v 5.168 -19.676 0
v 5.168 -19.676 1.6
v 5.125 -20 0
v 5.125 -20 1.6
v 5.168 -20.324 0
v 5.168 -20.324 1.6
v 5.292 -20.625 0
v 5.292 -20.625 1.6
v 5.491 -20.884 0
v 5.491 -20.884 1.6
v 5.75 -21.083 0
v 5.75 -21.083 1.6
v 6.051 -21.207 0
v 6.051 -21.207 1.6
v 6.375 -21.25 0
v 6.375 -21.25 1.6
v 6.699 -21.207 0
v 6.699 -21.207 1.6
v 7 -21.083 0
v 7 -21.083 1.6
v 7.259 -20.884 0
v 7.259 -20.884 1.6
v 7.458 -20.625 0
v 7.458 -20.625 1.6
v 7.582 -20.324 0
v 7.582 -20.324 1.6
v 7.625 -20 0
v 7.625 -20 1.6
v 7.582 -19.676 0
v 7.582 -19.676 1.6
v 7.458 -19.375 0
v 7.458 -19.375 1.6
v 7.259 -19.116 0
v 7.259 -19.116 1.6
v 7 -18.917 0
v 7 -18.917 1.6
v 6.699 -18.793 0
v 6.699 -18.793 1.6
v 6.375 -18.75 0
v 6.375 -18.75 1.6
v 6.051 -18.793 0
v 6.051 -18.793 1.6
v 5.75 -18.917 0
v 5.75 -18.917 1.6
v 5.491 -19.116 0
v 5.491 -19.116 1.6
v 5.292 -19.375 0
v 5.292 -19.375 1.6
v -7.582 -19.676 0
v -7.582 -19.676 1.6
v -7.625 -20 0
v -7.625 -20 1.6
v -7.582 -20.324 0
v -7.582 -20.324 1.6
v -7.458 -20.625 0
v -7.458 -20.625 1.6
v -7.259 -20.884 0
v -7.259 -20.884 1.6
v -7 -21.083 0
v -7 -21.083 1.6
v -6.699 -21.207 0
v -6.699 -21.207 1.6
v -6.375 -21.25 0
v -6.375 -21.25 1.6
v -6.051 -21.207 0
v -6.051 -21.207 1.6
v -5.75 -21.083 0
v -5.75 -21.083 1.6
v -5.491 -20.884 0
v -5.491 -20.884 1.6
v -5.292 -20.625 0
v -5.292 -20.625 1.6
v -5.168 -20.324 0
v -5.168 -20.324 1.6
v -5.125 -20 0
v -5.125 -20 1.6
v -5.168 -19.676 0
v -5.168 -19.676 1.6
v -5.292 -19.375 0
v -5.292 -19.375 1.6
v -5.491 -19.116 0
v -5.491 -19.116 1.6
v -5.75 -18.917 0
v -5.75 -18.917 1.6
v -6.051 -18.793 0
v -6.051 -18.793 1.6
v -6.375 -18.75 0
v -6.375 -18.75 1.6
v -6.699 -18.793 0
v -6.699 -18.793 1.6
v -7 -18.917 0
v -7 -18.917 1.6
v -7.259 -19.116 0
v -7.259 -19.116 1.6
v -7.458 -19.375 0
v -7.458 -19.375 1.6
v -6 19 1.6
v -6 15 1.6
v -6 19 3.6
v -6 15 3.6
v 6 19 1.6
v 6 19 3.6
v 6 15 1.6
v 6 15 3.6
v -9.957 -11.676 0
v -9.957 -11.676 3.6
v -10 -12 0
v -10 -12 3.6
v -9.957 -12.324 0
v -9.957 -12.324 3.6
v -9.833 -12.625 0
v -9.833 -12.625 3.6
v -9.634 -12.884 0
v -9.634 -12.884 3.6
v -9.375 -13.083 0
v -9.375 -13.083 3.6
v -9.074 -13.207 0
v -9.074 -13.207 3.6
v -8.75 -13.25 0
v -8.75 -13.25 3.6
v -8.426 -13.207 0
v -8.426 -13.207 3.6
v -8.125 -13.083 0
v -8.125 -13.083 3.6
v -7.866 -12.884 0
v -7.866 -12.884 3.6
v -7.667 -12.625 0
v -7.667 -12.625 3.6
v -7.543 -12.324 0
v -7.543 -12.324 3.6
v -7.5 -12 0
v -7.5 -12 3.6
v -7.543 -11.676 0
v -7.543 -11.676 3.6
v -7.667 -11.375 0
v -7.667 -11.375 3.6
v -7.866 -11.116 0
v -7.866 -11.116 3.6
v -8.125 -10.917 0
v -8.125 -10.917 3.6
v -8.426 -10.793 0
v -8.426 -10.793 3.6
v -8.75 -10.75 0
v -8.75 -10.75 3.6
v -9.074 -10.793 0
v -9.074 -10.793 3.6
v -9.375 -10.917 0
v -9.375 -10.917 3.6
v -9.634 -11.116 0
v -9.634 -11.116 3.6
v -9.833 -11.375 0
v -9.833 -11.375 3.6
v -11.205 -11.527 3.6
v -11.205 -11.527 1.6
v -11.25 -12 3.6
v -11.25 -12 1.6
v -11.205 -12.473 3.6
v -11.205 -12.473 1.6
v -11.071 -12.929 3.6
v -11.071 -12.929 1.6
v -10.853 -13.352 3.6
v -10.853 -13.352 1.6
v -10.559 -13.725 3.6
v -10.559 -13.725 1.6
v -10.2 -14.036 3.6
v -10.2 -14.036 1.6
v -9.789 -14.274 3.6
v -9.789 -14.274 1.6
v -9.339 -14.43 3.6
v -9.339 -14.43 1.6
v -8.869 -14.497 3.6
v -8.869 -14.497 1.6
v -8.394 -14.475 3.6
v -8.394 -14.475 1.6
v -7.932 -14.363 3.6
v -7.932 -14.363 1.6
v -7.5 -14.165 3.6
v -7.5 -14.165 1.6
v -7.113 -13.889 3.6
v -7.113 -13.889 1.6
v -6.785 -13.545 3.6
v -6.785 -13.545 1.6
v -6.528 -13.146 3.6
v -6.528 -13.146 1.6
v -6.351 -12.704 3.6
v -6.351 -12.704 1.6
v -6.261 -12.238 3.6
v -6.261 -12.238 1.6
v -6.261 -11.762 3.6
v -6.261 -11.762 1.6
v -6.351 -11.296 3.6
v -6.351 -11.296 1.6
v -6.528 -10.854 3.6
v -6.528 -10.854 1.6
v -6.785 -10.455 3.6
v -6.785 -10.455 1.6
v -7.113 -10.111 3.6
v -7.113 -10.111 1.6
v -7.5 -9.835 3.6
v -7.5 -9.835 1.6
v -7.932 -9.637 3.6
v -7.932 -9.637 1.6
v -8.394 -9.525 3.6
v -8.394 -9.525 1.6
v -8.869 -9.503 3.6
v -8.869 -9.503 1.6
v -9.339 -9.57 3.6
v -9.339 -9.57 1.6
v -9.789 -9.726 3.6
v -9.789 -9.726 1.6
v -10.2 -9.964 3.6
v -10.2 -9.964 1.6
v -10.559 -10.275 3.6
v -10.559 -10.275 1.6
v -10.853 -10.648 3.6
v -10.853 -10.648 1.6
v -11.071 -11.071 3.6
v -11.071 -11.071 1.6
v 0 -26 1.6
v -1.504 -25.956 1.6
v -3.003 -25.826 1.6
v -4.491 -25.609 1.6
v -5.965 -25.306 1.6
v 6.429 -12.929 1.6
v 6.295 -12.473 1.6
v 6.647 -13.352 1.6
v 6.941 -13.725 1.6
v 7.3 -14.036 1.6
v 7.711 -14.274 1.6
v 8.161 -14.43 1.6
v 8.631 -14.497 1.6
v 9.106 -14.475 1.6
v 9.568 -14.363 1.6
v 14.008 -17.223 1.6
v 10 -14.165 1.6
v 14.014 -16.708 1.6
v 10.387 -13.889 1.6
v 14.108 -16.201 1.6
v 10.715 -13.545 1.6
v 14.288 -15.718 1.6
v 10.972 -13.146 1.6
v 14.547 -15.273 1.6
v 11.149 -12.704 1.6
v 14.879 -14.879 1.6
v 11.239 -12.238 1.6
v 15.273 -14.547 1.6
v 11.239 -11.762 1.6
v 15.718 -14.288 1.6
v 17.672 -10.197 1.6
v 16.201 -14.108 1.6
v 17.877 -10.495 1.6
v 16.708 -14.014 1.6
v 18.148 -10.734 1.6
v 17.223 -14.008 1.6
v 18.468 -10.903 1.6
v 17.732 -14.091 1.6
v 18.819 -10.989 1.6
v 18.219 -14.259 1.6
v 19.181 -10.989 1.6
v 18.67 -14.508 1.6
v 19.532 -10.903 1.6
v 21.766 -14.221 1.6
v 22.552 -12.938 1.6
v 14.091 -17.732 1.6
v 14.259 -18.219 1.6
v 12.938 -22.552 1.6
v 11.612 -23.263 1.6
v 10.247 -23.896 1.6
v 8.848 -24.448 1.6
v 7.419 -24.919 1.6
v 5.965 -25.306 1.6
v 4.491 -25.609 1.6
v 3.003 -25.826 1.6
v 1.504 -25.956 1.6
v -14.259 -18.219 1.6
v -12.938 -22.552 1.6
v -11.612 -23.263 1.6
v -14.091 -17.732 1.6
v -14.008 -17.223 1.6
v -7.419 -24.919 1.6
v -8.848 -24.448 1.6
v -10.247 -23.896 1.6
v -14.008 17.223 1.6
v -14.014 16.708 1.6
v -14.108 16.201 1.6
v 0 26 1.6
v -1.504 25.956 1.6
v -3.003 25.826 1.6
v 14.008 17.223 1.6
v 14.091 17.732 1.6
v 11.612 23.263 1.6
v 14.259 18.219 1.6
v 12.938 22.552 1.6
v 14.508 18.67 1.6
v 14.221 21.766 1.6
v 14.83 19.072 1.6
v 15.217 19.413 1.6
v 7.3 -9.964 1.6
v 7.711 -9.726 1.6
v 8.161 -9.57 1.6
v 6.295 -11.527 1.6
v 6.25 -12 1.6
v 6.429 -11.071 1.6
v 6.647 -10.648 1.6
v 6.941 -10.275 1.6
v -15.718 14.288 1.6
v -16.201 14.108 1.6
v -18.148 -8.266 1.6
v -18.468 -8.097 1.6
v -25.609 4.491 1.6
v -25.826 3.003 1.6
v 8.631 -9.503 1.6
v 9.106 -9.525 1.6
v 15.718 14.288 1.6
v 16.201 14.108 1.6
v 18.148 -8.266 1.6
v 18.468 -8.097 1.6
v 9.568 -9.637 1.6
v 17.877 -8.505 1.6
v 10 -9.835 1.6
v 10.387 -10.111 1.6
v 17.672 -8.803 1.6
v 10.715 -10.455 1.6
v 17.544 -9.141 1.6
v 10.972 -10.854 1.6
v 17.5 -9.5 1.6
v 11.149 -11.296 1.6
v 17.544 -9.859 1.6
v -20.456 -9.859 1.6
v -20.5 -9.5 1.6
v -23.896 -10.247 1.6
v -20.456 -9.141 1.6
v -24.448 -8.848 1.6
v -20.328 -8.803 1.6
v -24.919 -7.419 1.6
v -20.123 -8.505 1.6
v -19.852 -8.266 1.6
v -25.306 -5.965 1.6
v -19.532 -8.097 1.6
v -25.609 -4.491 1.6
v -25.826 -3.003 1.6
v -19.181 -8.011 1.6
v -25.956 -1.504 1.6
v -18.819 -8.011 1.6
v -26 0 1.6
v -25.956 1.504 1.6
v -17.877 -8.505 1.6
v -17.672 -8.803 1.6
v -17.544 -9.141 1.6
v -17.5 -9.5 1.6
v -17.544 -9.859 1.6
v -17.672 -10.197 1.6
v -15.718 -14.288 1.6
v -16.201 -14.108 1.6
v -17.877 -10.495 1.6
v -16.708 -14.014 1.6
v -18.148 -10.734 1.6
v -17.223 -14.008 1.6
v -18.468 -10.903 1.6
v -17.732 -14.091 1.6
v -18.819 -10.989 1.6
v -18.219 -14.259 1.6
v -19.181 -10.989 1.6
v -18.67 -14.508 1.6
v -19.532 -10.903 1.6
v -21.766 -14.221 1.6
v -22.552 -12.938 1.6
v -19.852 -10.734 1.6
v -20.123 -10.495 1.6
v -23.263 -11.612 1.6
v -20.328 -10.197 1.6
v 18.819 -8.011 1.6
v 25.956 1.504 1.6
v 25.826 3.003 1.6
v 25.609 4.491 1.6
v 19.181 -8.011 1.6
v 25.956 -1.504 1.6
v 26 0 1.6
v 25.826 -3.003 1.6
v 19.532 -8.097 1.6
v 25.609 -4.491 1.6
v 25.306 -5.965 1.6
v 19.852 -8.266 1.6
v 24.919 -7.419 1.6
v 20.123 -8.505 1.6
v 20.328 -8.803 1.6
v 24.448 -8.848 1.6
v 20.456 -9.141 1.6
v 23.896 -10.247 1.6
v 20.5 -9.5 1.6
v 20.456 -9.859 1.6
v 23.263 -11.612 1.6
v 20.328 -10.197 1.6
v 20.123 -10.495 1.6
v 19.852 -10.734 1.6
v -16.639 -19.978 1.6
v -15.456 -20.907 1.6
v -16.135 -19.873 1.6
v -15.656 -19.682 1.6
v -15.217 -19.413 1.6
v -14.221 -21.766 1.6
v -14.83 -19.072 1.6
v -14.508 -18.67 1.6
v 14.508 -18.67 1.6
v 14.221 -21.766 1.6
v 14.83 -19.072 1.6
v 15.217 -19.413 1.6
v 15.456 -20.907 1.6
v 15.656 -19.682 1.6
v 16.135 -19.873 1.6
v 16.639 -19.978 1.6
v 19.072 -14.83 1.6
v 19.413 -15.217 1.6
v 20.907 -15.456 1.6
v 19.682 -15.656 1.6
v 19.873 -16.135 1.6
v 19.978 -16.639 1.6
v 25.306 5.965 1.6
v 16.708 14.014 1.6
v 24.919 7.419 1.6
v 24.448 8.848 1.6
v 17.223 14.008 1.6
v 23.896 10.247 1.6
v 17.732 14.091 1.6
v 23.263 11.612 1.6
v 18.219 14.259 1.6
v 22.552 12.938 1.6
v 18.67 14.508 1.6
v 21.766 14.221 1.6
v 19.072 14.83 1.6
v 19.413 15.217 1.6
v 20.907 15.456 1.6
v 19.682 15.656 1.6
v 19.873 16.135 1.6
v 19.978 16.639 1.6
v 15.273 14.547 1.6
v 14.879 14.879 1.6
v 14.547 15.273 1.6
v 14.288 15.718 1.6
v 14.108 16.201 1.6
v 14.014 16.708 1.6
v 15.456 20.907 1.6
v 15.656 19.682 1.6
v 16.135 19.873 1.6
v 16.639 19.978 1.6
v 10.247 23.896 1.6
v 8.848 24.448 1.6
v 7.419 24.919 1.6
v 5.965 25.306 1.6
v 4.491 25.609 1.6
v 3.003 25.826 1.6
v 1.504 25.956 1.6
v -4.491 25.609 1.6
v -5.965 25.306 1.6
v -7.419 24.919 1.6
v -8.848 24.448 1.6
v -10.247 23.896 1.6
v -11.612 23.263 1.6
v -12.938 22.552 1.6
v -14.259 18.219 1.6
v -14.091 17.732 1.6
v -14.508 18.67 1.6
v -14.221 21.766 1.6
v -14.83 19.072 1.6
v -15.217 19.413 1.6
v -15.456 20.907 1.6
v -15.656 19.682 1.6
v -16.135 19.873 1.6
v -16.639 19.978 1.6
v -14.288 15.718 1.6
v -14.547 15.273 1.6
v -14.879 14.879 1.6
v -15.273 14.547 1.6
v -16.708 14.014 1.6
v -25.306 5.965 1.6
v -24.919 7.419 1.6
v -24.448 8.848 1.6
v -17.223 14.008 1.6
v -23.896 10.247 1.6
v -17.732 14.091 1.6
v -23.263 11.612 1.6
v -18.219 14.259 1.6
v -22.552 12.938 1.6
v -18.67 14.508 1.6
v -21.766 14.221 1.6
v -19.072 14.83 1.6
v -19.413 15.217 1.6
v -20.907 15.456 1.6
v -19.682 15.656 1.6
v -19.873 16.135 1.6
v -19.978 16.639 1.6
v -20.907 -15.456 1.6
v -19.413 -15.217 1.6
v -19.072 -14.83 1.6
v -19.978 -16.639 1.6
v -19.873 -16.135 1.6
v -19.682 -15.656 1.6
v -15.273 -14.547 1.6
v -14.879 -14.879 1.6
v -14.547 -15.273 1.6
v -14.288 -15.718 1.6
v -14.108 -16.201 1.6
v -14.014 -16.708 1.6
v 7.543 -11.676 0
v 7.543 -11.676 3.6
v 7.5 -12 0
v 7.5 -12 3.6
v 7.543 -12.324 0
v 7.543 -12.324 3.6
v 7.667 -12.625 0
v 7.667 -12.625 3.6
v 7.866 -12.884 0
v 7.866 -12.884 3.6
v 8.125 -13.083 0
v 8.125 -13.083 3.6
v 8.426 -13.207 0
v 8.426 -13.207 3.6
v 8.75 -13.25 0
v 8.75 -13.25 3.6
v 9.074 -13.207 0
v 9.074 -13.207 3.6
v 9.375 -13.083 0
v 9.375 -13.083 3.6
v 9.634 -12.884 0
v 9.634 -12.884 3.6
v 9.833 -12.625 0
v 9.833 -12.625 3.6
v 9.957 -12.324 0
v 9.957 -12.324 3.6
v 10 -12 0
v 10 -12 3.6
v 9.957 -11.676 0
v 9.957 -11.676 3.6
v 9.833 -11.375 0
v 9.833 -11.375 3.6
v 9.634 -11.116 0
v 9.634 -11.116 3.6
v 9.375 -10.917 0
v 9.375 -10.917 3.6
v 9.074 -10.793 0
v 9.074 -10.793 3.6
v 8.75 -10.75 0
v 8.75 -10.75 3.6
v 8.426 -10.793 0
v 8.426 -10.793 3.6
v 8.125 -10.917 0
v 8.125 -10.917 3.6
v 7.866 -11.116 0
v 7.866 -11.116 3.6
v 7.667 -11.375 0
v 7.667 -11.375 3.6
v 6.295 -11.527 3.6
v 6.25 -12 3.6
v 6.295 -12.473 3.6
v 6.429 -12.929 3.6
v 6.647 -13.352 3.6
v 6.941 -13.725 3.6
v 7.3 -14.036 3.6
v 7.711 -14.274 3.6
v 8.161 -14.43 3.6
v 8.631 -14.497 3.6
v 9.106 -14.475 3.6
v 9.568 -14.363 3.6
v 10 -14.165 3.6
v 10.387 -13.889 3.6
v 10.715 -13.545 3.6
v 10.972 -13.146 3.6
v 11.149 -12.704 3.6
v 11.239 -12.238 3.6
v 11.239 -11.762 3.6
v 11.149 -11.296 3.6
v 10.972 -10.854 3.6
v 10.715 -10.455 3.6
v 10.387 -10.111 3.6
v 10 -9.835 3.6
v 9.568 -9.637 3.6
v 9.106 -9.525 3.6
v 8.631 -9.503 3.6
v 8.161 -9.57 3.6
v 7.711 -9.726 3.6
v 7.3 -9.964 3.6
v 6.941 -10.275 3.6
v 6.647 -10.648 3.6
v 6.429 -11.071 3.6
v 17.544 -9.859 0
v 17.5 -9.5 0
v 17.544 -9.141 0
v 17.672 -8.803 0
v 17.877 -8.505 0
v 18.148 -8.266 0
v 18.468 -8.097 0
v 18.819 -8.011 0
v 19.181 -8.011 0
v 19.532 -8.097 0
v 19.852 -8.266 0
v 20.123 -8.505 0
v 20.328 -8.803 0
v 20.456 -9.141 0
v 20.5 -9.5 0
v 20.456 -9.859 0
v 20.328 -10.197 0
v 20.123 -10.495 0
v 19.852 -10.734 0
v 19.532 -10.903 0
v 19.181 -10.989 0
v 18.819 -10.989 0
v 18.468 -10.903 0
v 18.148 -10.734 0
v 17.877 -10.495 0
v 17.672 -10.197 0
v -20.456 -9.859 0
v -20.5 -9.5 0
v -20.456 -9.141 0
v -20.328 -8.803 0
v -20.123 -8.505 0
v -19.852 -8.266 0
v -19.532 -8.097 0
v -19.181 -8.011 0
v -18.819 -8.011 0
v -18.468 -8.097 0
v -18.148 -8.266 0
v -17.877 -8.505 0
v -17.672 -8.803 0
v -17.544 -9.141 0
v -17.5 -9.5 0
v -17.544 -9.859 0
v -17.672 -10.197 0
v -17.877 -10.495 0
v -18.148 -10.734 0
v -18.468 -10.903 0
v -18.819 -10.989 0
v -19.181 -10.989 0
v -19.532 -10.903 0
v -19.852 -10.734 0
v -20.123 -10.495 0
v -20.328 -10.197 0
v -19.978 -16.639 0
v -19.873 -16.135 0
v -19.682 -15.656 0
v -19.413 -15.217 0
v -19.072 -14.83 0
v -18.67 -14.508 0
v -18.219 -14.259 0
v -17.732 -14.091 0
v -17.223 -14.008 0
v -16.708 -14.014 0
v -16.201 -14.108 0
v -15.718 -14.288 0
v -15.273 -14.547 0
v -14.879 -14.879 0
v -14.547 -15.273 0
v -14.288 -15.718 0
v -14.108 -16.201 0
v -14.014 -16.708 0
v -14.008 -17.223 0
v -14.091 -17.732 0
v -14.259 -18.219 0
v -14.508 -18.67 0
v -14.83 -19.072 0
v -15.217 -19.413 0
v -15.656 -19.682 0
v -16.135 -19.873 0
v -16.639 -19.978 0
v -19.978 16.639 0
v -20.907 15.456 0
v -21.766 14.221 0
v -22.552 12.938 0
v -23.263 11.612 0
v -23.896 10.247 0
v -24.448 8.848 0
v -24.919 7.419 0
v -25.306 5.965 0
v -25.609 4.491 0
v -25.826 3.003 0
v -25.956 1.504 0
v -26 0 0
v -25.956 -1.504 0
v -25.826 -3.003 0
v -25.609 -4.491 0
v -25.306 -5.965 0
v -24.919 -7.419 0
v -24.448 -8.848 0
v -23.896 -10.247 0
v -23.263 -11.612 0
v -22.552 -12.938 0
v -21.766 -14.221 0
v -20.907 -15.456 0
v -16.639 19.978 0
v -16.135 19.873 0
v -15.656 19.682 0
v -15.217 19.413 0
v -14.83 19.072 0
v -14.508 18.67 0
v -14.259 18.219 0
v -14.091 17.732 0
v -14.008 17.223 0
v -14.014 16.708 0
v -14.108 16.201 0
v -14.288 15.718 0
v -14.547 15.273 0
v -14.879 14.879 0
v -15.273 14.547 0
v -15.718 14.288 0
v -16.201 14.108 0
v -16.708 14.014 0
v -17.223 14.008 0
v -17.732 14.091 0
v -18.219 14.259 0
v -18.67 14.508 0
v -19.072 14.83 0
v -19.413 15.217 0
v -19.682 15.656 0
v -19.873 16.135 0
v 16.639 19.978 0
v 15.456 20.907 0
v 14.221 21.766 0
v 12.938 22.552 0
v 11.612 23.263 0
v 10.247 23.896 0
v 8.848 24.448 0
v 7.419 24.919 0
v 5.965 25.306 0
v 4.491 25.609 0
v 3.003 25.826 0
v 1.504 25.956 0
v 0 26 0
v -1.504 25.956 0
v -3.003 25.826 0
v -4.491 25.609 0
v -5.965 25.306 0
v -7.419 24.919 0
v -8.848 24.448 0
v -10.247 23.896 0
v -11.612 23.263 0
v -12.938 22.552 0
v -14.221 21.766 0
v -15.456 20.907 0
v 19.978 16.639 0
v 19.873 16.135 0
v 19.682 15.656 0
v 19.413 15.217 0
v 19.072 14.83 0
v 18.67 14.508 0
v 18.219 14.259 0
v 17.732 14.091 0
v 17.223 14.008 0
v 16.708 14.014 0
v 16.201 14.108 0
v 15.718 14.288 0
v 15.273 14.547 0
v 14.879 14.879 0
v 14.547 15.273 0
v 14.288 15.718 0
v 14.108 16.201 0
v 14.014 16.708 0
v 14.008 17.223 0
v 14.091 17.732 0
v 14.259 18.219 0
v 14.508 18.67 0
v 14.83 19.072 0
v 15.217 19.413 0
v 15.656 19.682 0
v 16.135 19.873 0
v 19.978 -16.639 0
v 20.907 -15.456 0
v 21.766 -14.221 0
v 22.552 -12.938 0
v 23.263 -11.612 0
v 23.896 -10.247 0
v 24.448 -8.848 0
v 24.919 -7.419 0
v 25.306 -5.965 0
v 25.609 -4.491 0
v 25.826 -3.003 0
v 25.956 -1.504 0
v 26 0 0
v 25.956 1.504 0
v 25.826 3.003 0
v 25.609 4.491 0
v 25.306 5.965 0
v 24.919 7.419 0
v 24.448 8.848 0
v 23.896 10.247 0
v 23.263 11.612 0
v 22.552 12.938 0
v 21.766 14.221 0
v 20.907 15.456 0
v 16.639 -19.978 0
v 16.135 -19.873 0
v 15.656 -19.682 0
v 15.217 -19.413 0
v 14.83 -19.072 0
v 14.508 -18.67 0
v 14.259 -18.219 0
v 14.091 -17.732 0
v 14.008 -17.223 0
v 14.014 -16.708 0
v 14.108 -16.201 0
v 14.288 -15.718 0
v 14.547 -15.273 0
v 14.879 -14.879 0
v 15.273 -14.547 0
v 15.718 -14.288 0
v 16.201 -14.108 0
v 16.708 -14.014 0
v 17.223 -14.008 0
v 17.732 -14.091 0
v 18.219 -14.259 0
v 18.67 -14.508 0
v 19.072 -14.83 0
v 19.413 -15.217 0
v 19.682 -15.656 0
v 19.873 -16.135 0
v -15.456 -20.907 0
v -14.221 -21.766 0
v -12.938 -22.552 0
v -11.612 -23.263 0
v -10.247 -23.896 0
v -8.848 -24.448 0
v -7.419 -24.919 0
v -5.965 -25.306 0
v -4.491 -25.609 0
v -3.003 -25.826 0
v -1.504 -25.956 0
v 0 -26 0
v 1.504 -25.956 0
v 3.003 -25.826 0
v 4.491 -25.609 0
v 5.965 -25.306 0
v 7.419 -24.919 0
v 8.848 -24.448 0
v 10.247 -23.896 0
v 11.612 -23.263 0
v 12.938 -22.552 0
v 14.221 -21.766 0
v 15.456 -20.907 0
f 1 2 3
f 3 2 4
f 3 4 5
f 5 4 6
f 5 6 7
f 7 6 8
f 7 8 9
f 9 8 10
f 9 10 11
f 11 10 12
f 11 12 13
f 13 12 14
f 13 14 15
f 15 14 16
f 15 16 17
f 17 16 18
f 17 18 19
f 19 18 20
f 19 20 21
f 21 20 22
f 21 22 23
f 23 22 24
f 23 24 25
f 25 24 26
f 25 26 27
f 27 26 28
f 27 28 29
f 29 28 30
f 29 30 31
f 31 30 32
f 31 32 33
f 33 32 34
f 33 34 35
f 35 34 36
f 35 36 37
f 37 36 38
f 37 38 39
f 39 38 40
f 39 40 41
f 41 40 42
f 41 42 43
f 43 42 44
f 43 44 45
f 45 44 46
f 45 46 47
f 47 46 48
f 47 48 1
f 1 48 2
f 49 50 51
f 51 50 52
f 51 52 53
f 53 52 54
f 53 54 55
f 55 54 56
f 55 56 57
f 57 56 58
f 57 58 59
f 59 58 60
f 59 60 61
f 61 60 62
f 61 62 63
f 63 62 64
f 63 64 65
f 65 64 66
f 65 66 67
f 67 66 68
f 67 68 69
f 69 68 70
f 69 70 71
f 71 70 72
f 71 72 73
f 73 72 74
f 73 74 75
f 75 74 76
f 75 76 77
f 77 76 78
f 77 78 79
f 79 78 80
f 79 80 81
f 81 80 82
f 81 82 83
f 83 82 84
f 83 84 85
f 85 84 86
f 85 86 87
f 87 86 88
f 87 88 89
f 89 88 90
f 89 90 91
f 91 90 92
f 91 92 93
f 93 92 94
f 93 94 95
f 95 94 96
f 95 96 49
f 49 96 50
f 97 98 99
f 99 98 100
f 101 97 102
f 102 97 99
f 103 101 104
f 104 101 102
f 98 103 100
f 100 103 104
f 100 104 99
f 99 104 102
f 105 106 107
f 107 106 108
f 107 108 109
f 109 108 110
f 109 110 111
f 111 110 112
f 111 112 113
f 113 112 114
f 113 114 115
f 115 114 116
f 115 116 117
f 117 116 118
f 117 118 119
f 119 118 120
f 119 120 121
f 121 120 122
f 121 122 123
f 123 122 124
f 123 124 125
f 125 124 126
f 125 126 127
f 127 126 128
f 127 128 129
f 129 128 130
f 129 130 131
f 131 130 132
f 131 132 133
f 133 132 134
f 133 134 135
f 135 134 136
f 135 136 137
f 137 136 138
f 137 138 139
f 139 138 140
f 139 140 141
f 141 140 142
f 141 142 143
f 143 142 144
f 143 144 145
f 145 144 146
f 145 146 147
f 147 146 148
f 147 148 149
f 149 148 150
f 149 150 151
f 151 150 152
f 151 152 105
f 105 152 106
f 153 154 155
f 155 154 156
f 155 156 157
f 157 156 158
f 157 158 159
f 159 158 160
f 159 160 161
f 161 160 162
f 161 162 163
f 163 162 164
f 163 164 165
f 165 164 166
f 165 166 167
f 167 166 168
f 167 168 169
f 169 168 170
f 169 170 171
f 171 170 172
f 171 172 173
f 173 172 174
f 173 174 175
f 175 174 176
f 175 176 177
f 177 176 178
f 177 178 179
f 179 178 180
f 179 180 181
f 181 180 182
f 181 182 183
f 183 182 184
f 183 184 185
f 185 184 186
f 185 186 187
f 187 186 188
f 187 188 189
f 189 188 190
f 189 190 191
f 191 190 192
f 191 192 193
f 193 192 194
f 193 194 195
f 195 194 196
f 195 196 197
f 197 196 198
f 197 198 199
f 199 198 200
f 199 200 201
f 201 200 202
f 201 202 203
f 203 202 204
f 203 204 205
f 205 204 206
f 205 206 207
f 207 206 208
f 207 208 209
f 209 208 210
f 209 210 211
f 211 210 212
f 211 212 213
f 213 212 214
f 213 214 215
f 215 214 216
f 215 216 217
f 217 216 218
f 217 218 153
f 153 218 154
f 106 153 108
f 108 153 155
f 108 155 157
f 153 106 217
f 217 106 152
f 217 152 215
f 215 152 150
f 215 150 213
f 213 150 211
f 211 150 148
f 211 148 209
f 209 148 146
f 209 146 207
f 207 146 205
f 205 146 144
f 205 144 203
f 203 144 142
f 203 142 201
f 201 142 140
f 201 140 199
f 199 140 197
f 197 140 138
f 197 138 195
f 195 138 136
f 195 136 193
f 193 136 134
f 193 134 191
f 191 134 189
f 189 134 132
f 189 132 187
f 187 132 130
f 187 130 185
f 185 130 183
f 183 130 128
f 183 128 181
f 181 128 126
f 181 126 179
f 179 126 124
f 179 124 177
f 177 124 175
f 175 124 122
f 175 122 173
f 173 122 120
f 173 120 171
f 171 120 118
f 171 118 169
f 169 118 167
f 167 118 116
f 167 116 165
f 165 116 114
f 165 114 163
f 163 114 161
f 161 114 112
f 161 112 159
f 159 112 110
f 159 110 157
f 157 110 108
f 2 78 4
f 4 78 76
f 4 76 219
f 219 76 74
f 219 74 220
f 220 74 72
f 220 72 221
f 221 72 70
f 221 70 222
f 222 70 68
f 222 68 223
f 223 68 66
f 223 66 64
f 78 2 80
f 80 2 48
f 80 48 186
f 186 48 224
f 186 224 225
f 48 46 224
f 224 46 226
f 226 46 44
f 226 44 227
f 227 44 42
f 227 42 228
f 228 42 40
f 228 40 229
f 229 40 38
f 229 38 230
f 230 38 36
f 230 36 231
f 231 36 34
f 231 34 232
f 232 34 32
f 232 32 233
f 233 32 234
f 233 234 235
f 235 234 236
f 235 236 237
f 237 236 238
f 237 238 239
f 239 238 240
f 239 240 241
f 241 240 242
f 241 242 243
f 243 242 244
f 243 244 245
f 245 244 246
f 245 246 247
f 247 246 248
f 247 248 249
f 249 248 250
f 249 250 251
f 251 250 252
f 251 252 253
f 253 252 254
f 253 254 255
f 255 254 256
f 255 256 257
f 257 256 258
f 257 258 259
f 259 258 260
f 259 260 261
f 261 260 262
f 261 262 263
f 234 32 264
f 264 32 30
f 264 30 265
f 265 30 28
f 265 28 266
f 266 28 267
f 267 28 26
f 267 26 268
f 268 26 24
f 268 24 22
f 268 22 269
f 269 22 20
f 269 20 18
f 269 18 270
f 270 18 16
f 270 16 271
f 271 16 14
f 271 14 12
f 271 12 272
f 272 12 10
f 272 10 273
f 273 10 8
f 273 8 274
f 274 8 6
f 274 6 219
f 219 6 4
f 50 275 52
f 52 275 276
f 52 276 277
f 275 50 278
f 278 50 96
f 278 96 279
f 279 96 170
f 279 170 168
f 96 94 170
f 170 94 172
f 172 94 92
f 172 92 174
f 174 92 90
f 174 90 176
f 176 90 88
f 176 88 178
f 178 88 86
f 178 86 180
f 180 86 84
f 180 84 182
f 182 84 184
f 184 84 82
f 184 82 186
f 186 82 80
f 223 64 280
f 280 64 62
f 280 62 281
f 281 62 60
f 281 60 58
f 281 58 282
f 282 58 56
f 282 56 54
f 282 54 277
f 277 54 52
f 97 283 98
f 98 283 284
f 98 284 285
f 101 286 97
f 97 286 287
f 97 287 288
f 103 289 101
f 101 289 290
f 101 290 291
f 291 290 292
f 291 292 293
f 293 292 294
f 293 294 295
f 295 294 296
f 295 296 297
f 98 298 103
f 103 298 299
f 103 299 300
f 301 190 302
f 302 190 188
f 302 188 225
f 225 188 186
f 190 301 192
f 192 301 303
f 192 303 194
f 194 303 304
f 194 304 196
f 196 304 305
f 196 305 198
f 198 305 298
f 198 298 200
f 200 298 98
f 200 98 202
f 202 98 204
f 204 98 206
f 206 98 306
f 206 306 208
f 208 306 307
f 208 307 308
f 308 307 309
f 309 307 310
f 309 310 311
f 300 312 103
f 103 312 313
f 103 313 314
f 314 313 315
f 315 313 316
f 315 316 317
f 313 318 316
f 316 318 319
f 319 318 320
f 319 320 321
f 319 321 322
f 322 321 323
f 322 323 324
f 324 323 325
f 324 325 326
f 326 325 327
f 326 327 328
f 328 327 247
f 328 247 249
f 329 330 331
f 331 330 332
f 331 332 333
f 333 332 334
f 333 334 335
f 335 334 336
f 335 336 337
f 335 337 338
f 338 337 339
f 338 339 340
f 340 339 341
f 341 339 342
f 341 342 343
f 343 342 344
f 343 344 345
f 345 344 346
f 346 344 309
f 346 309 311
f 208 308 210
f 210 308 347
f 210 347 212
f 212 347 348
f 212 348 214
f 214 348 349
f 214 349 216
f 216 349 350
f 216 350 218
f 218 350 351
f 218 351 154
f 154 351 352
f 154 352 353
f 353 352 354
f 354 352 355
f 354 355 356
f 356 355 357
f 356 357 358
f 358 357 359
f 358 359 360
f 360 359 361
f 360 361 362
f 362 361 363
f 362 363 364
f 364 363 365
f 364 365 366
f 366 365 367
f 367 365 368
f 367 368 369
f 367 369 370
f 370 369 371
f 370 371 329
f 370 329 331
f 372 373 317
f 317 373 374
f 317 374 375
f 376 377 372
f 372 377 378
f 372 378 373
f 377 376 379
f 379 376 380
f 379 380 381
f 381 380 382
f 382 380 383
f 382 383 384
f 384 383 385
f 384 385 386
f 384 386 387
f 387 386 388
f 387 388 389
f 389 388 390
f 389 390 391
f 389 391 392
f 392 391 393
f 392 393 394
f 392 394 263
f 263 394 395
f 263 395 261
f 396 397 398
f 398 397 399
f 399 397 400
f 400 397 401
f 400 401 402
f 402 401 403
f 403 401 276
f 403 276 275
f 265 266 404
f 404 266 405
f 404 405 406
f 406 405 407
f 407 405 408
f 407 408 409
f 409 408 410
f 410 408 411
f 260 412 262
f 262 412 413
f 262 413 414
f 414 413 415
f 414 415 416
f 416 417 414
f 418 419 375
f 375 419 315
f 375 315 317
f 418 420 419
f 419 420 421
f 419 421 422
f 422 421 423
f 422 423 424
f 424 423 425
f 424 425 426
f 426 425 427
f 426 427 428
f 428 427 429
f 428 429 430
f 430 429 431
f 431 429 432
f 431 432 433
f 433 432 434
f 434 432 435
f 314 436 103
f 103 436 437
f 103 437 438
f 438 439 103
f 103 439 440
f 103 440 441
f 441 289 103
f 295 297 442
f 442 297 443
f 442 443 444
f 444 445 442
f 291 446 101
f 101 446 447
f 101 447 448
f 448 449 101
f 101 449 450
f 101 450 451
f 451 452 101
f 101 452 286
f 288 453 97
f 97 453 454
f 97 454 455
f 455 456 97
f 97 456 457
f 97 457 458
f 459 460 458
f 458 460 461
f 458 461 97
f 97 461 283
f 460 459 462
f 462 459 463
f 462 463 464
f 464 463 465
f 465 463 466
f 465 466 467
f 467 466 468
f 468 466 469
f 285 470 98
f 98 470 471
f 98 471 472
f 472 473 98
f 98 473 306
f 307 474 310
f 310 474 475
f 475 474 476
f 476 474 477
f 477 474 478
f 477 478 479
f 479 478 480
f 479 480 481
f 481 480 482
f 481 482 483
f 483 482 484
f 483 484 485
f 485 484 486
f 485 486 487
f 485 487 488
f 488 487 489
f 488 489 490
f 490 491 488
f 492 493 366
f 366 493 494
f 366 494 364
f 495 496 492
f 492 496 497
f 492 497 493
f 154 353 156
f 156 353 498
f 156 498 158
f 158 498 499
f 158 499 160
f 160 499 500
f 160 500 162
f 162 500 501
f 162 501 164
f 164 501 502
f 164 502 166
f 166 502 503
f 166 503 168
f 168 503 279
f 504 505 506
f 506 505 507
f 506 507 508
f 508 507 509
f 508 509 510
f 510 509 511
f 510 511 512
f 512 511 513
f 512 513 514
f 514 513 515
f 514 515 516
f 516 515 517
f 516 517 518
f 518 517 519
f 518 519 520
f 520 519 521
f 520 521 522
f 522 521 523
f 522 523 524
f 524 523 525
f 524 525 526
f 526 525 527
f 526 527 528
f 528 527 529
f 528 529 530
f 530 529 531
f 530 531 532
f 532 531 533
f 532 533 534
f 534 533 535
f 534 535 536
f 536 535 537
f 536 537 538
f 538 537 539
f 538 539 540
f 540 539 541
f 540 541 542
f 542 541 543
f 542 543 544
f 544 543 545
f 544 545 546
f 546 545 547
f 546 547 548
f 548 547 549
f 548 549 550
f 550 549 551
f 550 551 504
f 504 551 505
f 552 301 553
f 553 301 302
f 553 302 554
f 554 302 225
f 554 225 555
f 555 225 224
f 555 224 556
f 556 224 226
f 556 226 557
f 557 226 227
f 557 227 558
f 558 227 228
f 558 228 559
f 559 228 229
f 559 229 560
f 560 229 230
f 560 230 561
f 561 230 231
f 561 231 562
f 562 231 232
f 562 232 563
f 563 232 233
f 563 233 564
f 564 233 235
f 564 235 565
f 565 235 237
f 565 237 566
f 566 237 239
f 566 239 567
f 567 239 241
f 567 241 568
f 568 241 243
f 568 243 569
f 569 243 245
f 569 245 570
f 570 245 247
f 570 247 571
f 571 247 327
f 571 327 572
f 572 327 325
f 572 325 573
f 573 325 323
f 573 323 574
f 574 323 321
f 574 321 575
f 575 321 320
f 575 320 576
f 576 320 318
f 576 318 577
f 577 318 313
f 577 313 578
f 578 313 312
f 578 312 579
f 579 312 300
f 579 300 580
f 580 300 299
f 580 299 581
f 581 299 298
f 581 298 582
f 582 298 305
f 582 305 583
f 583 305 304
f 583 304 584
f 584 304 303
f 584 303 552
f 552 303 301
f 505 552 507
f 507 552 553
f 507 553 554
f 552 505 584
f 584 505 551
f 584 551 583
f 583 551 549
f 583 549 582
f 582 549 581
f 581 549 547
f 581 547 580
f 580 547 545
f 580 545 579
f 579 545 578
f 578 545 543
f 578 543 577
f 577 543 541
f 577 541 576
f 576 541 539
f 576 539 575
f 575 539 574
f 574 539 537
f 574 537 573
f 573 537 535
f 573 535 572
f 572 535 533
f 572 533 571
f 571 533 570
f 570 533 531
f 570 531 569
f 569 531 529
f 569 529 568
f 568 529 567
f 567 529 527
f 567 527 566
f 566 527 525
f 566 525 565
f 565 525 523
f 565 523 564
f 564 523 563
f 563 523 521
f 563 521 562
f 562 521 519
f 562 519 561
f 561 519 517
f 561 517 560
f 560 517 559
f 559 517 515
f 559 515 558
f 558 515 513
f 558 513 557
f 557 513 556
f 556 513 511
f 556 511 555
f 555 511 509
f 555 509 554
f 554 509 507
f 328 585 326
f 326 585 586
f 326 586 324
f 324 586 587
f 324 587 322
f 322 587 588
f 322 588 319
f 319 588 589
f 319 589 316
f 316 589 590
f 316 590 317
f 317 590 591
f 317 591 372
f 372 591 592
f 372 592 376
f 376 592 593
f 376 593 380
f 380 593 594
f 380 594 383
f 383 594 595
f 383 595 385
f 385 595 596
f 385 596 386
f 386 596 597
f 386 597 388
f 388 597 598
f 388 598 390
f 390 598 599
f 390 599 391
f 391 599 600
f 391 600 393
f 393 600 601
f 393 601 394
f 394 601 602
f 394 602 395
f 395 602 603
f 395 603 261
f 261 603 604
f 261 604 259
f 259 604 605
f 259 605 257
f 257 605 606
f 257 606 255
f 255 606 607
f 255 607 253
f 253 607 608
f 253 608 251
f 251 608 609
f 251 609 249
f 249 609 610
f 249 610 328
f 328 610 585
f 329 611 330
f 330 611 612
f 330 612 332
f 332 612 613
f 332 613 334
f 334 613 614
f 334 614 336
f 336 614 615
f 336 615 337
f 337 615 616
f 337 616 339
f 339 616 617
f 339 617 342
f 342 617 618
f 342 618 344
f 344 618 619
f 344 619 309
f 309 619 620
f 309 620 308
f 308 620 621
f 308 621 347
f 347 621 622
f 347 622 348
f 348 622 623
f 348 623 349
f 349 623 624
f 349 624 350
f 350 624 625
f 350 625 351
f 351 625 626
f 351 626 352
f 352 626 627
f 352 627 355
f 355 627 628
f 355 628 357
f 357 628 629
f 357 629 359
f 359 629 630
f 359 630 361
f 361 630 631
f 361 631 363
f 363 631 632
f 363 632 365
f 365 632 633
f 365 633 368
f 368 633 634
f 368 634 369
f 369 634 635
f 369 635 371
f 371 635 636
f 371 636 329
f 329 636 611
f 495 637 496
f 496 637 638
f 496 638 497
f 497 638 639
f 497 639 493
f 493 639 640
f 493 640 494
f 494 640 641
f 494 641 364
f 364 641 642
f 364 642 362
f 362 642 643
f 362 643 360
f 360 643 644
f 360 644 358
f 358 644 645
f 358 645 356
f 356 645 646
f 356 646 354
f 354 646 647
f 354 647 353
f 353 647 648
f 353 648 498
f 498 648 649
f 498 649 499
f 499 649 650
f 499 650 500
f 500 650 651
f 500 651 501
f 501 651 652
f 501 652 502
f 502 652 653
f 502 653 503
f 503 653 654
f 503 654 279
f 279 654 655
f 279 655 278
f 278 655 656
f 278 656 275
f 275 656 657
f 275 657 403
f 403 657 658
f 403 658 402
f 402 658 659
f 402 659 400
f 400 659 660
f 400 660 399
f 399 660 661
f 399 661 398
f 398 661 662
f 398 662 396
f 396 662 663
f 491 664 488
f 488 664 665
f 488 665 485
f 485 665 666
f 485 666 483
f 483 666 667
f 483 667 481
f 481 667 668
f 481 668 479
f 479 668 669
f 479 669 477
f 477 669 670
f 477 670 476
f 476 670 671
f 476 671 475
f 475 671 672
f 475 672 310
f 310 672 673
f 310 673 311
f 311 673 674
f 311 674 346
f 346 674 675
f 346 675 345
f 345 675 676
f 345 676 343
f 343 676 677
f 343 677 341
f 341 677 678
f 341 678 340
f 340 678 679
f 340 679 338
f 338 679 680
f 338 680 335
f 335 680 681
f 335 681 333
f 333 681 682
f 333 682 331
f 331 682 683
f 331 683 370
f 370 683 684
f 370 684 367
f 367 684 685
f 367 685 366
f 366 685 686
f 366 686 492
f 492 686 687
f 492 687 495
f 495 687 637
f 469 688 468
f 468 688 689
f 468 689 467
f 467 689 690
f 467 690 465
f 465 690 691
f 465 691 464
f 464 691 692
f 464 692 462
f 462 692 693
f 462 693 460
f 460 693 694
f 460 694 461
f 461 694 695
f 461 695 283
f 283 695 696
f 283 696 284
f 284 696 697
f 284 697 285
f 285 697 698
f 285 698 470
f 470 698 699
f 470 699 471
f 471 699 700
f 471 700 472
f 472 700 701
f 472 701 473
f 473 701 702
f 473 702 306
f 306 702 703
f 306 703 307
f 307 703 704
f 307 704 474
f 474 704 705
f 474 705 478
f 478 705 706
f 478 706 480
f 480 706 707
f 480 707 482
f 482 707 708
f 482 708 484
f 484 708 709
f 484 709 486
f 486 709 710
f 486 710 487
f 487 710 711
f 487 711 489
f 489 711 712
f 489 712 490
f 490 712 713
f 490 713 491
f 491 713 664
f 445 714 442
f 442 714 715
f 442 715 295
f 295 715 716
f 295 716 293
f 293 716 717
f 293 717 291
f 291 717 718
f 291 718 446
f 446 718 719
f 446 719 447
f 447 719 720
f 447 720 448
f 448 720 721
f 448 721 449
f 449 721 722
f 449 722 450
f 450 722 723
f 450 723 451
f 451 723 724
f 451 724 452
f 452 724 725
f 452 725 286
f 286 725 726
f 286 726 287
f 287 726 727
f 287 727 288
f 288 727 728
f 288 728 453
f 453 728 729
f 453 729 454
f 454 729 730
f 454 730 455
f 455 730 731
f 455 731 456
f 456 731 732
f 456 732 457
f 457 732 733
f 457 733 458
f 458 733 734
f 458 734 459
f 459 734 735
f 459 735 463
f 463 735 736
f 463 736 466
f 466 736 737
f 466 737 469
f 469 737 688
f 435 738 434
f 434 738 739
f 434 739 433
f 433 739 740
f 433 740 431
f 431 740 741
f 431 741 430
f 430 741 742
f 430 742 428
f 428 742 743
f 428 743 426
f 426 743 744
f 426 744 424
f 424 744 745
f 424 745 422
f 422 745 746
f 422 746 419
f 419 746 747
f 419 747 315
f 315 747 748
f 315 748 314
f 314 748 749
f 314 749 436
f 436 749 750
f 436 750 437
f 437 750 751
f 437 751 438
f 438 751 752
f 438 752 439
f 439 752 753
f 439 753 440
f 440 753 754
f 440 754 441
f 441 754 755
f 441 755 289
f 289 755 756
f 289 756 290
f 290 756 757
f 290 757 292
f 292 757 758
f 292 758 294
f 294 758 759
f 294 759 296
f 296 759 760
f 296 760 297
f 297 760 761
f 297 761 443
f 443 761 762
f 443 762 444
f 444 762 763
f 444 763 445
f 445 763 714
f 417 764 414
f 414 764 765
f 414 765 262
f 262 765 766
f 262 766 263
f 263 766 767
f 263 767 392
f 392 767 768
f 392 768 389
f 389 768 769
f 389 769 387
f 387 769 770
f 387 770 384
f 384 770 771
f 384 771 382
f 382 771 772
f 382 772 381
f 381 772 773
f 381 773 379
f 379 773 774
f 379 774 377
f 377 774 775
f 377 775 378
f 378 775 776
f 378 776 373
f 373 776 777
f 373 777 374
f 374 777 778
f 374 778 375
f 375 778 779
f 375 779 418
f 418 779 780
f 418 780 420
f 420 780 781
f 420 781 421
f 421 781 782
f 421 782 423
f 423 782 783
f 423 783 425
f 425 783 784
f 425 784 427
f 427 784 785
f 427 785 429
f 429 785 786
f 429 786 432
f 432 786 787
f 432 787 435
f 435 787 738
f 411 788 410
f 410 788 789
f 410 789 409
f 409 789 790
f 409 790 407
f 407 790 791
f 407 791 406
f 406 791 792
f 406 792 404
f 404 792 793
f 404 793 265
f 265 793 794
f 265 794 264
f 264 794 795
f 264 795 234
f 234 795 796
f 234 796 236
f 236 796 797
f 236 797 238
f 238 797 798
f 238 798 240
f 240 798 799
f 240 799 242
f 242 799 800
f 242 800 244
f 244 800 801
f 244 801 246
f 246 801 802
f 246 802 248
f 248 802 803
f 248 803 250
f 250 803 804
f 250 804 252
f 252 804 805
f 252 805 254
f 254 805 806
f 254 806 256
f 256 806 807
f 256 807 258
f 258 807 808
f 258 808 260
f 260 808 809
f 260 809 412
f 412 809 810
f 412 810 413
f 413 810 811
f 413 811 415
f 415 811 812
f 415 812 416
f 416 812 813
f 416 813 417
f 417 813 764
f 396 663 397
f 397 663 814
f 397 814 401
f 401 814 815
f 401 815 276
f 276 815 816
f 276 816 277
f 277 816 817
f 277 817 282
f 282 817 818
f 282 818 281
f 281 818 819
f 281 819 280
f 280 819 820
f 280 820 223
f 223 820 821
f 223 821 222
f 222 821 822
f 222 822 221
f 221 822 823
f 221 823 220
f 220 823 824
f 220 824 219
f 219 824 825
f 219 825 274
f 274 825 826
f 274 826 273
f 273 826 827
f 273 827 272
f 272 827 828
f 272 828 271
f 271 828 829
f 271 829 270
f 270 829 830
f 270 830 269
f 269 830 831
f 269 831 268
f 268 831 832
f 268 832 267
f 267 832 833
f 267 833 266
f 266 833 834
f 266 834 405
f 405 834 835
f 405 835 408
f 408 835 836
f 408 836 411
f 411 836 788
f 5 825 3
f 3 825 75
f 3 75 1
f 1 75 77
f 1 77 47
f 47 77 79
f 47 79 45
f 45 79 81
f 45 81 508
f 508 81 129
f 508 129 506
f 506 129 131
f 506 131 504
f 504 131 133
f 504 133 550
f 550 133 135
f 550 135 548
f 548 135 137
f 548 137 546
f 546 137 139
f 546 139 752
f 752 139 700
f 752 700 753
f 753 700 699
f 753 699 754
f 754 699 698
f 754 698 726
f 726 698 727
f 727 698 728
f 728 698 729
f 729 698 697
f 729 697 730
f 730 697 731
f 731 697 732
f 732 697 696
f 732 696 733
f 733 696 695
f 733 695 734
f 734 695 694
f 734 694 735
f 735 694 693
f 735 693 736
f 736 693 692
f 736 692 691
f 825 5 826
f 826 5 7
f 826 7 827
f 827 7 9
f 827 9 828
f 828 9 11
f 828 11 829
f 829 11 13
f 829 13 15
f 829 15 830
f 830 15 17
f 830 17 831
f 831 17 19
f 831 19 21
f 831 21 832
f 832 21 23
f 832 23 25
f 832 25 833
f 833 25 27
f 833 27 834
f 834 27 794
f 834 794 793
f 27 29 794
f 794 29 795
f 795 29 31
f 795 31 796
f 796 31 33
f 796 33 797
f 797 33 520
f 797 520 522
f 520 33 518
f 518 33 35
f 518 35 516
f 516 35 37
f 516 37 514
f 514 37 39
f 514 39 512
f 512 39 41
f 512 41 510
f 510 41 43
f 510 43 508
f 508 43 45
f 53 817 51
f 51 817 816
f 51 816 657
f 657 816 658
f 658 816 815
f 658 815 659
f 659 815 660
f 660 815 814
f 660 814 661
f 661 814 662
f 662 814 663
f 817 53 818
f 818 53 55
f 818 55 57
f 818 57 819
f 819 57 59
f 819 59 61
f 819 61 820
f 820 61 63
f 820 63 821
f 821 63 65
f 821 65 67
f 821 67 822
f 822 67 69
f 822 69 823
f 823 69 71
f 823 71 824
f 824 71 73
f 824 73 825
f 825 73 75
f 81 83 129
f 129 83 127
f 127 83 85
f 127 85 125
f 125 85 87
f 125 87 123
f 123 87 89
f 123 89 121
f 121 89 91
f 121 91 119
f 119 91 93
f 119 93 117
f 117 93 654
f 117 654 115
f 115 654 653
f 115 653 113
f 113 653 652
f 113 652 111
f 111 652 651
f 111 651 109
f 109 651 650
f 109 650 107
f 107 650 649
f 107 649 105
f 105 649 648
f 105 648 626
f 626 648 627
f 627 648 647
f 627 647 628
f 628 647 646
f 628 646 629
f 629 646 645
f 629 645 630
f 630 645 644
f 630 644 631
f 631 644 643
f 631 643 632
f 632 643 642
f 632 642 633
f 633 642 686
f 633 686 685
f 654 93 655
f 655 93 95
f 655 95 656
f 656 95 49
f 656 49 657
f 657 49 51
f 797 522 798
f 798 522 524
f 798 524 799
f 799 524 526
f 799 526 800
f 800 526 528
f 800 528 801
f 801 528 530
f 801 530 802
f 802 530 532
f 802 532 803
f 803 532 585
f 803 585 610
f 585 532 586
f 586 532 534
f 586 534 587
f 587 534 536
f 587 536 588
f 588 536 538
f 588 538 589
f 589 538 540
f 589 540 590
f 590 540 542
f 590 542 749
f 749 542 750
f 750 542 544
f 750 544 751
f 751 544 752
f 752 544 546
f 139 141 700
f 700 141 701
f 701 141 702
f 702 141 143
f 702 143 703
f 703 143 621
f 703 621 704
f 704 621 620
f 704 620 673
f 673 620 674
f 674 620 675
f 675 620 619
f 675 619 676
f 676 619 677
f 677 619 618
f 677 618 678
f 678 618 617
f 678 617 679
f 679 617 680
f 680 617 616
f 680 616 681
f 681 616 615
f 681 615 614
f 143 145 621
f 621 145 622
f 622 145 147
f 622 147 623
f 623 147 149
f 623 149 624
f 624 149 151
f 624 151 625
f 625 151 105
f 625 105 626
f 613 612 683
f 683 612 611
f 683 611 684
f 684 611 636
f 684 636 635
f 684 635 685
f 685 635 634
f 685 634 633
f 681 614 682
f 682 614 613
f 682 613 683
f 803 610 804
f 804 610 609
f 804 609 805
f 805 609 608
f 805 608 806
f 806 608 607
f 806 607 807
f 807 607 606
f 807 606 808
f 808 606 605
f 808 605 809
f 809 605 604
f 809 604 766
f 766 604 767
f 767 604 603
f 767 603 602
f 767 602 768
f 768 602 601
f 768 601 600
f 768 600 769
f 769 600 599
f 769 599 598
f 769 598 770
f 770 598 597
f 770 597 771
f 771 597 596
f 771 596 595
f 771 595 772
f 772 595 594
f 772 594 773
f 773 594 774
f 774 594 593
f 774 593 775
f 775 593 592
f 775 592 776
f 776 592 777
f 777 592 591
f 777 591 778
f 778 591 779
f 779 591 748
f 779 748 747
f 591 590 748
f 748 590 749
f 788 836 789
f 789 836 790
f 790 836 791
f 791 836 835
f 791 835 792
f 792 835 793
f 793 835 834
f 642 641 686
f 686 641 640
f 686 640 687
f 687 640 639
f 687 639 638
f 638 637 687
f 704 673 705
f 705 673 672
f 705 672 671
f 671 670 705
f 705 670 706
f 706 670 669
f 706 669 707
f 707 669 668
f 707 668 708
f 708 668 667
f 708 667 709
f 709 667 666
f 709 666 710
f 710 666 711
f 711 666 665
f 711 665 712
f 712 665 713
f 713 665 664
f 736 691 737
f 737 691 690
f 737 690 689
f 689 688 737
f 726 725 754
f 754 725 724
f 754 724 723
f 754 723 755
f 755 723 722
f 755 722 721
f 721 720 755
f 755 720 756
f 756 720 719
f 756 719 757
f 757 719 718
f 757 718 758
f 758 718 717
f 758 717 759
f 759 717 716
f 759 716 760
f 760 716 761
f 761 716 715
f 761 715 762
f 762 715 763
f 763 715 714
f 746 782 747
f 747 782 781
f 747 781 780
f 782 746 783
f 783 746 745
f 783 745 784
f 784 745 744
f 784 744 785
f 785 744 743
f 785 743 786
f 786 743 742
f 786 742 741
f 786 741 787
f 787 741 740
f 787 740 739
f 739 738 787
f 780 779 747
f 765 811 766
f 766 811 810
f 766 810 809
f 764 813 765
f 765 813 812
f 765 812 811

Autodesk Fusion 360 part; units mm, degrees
sketch "Sketch1" plane through (0, 0, 0) normal (0, 0, 1) x (1, 0, 0)
  line L0 (17, -17) -> (-17, -17) construction
  line L1 (-17, -17) -> (-17, 17) construction
  line L2 (-17, 17) -> (17, 17) construction
  line L3 (17, 17) -> (17, -17) construction
  line L4 (17, -17) -> (-17, 17) construction
  line L5 (-17, -17) -> (17, 17) construction
  circle A0 centre (17, -17) radius 3
  circle A1 centre (17, 17) radius 3
  circle A2 centre (-17, 17) radius 3
  circle A3 centre (-17, -17) radius 3
  line L6 (-19, -9.5) -> (19, -9.5) construction
  circle A4 centre (19, -9.5) radius 1.5
  circle A5 centre (-19, -9.5) radius 1.5
  circle A6 centre (0, 0) radius 26
  dimension "d1" = 34
  dimension "d2" = 34
  dimension "d3" = 6
  dimension "d4" = 6
  dimension "d5" = 6
  dimension "d6" = 6
  dimension "d7" = 38
  dimension "d8" = 7.5
  dimension "d9" = 3
  dimension "d10" = 3
  dimension "d11" = 52
extrude "Extrude1" add sketch "Sketch1" along normal blind 1.6 contours A0 A1 A2 A3 A6
sketch "Sketch2" plane through (0, 0, 1.6) normal (0, 0, 1) x (1, 0, 0)
  circle A0 centre (-19, -9.5) radius 1.5
  circle A1 centre (19, -9.5) radius 1.5
  line L0 (6, 19) -> (6, 15)
  line L1 (-6, 19) -> (6, 19)
  circle A2 centre (8.75, -12) radius 1.25
  line L2 (6, 15) -> (-6, 19) construction
  circle A3 centre (8.75, -12) radius 2.5
  circle A4 centre (-8.75, -12) radius 2.5
  line L3 (-6, 15) -> (6, 19) construction
  line L4 (6, 15) -> (-6, 15)
  line L5 (-6, 15) -> (-6, 19)
  line L6 (-8.75, -12) -> (8.75, -12) construction
  circle A5 centre (-8.75, -12) radius 1.25
  line L7 (0, 30) -> (0, -30) construction
  point P0 (0, 17)
  point P1 (0, -12)
  dimension "d23" = 12
  dimension "d24" = 4
  dimension "d25" = 17.5
  dimension "d26" = 2.5
  dimension "d27" = 5
  dimension "d28" = 5
  dimension "d29" = 2.5
extrude "Extrude2" add sketch "Sketch2" along normal blind 2 contours L0 L1 L4 L5 | A3 | A4
extrude "Extrude3" cut sketch "Sketch2" against normal blind 2 contours A2 | A5
sketch "Sketch3" plane through (0, 0, 1.6) normal (0, 0, 1) x (1, 0, 0)
  line L0 (-6, 15) -> (-6, 19)
  line L1 (-6, 19) -> (6, 19)
  line L2 (6, 19) -> (6, 15)
  line L3 (6, 15) -> (-6, 15)
  circle A0 centre (8.75, -12) radius 2.5
  circle A1 centre (-19, -9.5) radius 1.5
  circle A2 centre (19, -9.5) radius 1.5
  arc A3 (-16.6394, -19.9782) -> (16.6394, -19.9782) centre (0, 0) ccw
  arc A4 (19.9782, -16.6394) -> (16.6394, -19.9782) centre (17, -17) ccw
  arc A5 (19.9782, -16.6394) -> (19.9782, 16.6394) centre (0, 0) ccw
  arc A6 (16.6394, 19.9782) -> (19.9782, 16.6394) centre (17, 17) ccw
  arc A7 (16.6394, 19.9782) -> (-16.6394, 19.9782) centre (0, 0) ccw
  arc A8 (-19.9782, 16.6394) -> (-16.6394, 19.9782) centre (-17, 17) ccw
  arc A9 (-19.9782, 16.6394) -> (-19.9782, -16.6394) centre (0, 0) ccw
  arc A10 (-16.6394, -19.9782) -> (-19.9782, -16.6394) centre (-17, -17) ccw
  circle A11 centre (-8.75, -12) radius 2.5
  line L4 (-6.375, -20) -> (6.375, -20)
  circle A12 centre (6.375, -20) radius 1.25
  circle A13 centre (-6.375, -20) radius 1.25
  point P0 (0, -20)
  point P1 (8.75, -12)
  dimension "d36" = 12.75
  dimension "d37" = 8
  dimension "d38" = 2.5
  dimension "d39" = 2.5
extrude "Extrude5" cut sketch "Sketch3" against normal through all contours A12 | A13
